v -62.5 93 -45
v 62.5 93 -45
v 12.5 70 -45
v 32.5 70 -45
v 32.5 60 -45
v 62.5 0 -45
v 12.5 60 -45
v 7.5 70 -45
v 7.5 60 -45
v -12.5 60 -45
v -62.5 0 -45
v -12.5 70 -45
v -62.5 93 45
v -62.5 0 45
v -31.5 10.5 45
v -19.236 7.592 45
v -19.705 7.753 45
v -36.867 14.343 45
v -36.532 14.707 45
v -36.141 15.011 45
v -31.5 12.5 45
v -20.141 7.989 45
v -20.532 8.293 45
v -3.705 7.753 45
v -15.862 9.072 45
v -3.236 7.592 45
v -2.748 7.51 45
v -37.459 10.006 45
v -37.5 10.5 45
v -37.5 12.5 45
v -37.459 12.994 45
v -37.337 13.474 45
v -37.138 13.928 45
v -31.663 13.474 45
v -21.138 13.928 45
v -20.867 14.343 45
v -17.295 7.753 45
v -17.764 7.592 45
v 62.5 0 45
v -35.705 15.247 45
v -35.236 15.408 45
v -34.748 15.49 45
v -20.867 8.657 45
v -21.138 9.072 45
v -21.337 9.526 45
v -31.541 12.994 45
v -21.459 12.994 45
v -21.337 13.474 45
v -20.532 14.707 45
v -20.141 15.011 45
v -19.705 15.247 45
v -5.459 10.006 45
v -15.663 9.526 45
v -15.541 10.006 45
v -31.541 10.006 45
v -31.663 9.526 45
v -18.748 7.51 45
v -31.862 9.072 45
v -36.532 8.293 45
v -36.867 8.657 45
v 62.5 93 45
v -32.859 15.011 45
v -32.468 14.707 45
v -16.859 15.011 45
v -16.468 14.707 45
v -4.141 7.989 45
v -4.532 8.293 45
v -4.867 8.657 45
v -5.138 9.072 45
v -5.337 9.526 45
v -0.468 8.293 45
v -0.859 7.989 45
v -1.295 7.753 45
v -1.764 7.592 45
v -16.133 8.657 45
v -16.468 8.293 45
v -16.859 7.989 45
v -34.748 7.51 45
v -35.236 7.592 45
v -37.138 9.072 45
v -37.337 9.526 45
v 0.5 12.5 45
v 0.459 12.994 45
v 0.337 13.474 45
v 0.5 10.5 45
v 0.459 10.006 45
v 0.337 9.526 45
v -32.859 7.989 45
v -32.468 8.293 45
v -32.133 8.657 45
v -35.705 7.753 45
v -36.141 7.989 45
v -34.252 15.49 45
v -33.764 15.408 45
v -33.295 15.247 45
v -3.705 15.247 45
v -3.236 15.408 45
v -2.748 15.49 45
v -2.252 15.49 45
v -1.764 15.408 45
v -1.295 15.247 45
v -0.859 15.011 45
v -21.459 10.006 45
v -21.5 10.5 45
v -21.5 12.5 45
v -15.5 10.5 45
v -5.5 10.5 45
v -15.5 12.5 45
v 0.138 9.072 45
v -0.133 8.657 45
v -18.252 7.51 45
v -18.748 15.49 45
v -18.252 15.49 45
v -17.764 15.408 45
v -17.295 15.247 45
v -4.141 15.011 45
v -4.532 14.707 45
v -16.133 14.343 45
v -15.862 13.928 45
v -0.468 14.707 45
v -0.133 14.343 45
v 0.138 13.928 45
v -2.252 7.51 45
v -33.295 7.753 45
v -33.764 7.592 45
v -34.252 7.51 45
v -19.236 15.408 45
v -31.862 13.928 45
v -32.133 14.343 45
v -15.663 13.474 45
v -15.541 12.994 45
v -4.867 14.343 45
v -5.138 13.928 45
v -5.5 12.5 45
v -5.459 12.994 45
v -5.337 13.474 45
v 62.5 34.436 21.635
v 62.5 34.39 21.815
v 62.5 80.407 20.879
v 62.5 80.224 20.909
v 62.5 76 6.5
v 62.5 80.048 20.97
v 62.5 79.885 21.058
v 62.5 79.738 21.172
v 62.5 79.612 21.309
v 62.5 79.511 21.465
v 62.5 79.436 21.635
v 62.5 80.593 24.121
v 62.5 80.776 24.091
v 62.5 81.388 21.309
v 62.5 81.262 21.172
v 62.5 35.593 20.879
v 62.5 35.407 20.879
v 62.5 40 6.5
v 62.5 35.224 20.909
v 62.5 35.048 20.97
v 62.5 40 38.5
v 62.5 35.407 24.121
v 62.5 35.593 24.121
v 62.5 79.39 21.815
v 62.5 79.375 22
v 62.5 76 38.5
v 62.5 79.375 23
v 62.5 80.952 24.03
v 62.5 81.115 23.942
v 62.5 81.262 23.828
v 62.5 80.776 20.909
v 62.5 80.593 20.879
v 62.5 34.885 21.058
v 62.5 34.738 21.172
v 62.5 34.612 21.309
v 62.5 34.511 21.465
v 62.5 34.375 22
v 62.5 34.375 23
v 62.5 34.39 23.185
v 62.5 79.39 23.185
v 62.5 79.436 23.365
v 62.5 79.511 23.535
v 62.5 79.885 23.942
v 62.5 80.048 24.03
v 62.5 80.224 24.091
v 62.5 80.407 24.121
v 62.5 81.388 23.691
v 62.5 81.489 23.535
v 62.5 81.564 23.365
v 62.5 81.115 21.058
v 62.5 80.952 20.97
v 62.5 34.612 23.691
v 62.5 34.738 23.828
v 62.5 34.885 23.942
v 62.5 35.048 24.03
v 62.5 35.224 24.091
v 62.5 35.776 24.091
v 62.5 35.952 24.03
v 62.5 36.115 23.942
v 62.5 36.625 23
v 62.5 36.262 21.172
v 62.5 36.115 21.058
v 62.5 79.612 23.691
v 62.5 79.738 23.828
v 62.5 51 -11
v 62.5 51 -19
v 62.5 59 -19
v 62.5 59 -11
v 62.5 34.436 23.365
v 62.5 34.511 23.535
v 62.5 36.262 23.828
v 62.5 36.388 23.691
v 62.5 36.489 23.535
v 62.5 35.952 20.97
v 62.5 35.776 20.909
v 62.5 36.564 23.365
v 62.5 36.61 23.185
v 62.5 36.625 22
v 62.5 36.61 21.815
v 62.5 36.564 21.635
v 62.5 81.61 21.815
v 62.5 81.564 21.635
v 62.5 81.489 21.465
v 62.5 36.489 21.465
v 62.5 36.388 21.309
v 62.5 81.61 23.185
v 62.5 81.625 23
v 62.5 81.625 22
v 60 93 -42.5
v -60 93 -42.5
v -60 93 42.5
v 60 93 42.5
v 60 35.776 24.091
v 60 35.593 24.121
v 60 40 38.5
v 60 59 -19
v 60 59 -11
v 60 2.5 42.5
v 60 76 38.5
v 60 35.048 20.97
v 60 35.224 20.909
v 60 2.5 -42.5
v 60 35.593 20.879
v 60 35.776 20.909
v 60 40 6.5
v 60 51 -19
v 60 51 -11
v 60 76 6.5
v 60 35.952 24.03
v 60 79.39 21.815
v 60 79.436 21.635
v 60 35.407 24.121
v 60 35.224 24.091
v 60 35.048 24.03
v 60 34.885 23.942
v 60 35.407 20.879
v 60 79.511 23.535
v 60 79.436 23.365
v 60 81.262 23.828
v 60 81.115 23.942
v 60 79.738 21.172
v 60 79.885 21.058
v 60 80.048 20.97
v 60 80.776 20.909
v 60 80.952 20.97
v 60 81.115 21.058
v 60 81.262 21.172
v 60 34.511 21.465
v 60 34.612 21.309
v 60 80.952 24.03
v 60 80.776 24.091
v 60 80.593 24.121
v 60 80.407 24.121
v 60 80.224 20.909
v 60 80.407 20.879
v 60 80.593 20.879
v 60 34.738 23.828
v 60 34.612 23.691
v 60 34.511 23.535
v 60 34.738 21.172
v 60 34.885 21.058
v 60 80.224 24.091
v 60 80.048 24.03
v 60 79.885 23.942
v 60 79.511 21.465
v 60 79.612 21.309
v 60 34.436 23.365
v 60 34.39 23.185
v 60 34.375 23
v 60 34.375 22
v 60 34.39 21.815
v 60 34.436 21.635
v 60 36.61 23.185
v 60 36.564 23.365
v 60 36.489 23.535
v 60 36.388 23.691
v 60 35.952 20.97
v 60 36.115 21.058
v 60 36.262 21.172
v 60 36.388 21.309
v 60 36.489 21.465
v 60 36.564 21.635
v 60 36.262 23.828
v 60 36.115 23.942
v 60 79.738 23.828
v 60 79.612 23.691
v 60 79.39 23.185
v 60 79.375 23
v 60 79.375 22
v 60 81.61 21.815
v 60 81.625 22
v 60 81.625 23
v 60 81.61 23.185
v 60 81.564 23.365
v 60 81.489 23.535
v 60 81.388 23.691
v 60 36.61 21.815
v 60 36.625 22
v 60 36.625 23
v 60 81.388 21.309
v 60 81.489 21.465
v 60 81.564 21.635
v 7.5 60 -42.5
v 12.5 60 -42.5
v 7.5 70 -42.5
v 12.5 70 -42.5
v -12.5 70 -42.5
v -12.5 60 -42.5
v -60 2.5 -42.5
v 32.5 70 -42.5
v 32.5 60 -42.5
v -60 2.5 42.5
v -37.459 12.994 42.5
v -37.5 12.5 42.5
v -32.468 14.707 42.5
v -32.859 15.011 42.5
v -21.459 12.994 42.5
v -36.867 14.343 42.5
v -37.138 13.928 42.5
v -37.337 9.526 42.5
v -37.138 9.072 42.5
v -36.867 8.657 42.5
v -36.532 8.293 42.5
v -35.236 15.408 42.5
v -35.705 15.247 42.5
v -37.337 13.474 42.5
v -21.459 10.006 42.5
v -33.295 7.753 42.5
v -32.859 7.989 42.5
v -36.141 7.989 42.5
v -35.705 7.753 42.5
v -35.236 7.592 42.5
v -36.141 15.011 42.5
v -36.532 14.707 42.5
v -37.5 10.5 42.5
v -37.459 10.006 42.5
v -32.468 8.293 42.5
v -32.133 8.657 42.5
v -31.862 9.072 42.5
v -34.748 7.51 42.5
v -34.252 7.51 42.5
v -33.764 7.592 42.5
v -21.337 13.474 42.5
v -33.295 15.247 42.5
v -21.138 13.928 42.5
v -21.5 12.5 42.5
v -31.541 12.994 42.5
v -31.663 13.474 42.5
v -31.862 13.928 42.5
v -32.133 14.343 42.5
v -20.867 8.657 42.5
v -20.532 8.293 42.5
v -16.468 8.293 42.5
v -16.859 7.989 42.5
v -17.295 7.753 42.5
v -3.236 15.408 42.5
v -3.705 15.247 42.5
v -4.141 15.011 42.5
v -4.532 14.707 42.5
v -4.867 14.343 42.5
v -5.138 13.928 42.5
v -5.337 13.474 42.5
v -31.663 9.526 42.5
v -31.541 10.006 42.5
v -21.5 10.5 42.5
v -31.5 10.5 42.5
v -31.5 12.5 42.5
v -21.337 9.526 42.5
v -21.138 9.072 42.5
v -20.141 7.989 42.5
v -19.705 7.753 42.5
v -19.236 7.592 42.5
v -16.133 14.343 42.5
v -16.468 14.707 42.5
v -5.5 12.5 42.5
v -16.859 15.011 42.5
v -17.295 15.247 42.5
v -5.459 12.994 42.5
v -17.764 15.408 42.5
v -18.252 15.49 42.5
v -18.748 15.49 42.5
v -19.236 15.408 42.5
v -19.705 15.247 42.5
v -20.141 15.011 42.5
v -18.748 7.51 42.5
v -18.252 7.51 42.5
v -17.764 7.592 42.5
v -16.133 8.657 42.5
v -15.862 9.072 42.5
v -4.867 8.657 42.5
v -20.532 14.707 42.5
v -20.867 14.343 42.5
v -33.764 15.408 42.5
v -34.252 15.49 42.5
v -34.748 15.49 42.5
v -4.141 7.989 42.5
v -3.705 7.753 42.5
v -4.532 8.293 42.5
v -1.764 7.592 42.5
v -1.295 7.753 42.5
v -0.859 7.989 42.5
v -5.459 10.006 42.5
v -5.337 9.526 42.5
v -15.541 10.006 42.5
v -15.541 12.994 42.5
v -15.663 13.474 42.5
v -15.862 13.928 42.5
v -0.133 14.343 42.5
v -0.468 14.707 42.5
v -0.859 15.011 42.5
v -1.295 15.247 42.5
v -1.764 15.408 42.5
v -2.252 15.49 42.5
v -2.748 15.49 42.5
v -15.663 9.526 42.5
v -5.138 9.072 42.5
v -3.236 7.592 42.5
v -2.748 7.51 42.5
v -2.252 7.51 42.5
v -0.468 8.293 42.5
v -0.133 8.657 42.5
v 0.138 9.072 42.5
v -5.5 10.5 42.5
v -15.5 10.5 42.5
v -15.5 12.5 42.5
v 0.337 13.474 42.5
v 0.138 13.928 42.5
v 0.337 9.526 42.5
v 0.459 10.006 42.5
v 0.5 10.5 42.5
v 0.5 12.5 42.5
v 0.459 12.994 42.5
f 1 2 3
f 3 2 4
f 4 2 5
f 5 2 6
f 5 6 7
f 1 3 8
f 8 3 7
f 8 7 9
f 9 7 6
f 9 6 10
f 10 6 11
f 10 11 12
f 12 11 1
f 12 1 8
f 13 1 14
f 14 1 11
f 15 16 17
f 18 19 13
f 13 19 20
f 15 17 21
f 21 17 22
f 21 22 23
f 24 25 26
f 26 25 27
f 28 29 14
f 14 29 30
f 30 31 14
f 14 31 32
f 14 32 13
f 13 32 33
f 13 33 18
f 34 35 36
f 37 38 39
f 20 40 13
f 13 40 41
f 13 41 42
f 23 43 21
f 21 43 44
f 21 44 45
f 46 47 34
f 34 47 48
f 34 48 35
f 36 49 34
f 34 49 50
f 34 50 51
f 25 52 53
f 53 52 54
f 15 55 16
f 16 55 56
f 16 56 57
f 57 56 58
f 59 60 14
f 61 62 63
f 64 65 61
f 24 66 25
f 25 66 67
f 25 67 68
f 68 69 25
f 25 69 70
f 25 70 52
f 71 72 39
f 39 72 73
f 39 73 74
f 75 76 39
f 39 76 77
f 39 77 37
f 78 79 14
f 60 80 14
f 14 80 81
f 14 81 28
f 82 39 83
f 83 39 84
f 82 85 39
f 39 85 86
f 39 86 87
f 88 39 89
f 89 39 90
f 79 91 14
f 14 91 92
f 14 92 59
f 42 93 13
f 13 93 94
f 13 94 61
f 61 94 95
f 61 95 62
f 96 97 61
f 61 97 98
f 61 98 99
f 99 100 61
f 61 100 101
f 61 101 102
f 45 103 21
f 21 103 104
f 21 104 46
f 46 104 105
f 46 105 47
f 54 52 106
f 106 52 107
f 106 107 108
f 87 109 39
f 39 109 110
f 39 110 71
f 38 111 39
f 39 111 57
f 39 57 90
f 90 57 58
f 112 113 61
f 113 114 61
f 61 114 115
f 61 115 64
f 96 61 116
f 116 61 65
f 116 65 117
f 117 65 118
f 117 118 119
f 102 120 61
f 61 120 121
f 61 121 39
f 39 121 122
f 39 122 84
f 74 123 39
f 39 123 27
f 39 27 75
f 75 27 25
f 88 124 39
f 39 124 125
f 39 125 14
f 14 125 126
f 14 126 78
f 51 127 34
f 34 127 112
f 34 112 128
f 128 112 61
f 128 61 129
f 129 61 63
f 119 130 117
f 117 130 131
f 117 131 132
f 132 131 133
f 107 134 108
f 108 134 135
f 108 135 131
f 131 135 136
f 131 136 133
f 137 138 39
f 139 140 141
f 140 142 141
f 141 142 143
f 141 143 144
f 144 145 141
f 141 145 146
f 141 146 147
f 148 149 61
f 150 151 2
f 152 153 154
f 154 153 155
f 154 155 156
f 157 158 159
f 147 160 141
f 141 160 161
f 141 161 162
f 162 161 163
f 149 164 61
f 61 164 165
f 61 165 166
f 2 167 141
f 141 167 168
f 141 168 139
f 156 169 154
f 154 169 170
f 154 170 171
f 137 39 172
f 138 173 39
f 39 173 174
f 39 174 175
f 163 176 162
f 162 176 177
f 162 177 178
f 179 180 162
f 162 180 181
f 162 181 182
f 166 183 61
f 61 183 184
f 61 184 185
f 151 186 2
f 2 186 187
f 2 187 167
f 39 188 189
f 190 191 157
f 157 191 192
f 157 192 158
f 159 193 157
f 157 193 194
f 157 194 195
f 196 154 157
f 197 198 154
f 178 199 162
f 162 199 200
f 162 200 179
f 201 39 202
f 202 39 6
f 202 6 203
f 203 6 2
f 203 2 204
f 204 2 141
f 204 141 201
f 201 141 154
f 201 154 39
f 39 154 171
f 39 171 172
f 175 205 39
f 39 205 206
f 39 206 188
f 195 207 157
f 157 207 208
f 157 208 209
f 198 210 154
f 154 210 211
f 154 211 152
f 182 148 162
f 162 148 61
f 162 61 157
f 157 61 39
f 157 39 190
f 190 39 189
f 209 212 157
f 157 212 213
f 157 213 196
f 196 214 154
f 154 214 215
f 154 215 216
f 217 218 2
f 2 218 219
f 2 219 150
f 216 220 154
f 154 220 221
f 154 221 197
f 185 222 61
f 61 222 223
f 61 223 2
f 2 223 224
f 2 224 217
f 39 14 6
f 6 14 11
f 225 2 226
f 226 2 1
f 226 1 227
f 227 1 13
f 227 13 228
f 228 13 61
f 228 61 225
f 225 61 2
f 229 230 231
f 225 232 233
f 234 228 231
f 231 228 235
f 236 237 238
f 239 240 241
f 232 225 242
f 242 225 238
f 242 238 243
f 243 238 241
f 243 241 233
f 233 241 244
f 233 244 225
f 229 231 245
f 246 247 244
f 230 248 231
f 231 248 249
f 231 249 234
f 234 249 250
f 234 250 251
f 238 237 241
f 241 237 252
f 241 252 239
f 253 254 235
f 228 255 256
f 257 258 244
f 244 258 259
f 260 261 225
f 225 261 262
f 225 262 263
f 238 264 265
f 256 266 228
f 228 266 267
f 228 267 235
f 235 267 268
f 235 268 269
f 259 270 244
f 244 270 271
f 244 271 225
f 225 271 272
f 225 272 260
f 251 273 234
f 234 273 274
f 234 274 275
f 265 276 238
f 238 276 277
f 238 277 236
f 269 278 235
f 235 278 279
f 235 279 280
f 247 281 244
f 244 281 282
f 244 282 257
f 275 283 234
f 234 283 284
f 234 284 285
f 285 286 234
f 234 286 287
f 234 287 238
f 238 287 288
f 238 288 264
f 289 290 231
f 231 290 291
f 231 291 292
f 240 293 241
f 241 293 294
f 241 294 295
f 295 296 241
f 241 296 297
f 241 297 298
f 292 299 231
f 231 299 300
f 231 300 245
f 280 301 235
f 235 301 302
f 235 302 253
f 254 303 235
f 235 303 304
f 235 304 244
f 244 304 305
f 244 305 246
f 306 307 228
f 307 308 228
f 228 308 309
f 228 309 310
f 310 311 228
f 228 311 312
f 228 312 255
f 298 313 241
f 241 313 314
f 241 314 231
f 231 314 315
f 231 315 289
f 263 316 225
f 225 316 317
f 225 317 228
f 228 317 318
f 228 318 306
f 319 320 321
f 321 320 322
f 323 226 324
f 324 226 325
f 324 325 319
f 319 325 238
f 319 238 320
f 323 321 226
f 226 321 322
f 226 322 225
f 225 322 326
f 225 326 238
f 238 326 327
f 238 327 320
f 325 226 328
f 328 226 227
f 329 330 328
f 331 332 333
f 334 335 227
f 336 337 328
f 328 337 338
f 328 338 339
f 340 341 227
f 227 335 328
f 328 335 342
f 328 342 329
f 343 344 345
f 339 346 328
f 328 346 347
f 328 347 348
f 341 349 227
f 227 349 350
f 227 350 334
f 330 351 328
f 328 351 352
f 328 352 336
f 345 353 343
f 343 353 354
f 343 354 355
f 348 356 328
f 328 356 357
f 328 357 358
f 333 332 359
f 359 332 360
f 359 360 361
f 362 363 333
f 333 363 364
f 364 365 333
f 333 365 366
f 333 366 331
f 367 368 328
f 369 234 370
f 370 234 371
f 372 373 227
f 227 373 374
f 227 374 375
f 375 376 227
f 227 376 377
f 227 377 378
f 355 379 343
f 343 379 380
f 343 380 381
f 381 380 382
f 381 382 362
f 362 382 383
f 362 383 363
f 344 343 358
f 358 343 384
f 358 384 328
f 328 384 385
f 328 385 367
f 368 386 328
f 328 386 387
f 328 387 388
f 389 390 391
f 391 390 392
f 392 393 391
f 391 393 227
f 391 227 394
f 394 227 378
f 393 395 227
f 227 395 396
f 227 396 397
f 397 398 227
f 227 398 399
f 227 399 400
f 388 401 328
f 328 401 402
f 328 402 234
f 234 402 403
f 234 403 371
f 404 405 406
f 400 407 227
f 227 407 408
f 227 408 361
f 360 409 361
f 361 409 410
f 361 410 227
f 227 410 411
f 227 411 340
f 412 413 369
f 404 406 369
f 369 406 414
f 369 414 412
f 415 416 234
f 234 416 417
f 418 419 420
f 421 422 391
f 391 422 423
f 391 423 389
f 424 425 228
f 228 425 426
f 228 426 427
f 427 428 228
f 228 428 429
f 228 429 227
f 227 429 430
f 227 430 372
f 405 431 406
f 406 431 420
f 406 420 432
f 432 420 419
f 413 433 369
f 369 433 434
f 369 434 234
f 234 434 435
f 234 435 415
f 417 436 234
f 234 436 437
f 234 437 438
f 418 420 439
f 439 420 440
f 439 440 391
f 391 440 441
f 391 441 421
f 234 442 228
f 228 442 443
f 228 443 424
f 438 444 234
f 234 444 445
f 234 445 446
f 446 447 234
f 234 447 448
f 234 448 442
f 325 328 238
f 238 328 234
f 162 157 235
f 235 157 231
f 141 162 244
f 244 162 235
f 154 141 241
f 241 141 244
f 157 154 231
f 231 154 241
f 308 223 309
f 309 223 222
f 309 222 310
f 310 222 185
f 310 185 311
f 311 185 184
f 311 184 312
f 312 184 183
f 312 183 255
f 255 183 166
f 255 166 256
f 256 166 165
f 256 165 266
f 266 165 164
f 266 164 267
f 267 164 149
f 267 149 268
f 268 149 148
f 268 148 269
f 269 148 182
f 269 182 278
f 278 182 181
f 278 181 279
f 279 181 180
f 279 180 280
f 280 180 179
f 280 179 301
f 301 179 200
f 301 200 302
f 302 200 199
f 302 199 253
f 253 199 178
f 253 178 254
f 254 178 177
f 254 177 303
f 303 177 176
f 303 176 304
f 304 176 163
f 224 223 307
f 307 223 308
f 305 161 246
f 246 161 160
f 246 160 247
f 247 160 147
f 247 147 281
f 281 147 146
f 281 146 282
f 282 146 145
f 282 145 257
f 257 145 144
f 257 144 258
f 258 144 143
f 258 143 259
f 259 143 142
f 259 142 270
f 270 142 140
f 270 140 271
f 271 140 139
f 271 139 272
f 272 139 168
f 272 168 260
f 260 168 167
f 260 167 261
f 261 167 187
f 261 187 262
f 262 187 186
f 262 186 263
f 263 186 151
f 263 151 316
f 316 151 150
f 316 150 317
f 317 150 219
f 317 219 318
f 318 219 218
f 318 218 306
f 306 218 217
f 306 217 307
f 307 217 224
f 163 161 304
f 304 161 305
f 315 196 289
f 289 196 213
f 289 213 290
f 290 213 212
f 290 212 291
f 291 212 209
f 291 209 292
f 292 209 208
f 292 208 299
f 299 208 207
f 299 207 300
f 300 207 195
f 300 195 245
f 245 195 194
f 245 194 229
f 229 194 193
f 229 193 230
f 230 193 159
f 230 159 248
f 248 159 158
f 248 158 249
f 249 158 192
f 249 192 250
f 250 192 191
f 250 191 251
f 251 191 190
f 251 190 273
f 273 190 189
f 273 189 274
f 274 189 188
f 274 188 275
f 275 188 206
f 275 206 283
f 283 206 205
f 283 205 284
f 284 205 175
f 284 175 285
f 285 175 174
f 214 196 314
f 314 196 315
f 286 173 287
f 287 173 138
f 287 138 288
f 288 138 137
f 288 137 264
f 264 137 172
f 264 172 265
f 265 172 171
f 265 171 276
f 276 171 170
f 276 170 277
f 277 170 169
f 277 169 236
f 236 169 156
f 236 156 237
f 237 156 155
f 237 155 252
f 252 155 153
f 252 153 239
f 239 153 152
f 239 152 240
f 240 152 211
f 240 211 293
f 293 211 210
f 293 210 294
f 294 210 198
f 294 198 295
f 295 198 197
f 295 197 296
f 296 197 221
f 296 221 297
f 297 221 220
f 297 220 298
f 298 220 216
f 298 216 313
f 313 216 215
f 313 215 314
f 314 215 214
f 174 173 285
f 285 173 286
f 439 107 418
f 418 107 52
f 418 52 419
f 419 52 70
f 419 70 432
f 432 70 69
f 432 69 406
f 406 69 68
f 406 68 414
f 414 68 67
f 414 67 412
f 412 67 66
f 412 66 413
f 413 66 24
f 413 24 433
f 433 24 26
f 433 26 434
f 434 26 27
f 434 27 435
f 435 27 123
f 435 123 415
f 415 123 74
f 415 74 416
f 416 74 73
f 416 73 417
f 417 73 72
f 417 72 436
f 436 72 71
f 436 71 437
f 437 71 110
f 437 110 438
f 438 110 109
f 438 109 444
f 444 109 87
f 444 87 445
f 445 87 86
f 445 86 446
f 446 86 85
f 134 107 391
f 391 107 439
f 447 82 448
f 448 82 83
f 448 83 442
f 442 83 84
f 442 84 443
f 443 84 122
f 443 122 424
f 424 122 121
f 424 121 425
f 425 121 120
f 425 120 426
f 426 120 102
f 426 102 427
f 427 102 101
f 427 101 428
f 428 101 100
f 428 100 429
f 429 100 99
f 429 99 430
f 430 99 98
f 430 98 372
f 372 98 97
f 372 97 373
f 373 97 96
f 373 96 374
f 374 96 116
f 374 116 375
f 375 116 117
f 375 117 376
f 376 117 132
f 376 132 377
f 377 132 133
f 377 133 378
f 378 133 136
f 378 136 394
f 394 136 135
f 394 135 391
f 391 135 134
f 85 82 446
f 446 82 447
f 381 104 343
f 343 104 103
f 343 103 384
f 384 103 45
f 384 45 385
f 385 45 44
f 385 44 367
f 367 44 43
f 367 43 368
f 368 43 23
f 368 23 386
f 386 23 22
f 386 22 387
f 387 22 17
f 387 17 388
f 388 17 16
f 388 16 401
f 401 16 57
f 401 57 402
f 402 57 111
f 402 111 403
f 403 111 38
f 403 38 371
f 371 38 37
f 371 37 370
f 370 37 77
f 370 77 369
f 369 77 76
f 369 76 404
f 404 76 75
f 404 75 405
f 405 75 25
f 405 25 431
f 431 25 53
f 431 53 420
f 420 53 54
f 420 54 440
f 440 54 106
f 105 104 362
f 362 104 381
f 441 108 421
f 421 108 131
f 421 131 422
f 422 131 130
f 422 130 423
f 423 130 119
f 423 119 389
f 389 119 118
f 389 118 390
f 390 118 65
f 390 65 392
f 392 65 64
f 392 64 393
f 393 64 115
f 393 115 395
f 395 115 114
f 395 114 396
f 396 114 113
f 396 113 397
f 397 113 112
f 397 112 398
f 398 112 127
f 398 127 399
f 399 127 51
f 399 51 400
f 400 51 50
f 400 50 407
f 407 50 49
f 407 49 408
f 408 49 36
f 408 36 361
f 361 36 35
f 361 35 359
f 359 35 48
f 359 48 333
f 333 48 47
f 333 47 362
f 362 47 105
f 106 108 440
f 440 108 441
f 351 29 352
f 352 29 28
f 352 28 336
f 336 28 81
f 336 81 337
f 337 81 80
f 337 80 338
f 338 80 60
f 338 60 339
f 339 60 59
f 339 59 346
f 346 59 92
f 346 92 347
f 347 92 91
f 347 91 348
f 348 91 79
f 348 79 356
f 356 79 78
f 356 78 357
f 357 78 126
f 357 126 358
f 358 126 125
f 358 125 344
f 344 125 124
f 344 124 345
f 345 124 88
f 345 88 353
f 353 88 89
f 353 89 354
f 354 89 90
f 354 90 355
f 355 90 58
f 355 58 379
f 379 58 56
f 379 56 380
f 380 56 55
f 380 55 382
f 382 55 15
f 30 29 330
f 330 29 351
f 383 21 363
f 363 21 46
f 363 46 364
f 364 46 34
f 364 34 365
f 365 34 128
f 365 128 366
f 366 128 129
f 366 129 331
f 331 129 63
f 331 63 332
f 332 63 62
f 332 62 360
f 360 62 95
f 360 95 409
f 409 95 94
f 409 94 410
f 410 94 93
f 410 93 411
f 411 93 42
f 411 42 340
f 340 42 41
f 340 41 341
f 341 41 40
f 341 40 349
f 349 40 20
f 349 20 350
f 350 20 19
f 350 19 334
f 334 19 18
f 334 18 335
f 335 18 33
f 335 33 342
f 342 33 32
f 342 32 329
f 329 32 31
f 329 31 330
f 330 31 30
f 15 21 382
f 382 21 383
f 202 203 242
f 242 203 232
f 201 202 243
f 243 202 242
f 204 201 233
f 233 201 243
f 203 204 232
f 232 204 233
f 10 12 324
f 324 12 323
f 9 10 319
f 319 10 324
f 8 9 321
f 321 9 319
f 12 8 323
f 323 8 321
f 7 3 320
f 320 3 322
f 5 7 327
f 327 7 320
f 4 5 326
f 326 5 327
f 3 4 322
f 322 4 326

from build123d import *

# Parameters (mm, degrees)
SKETCH1_W           = 125
SKETCH1_H           = 90
BOSS_EXTRUDE1_DEPTH = 2.5
SKETCH1_3_W         = 125
SKETCH1_3_H         = 90
SKETCH1_3_W_2       = 120
SKETCH1_3_H_2       = 85
BOSS_EXTRUDE2_DEPTH = 93
SKETCH2_W           = 32
SKETCH2_H           = 36
CUT_EXTRUDE1_DEPTH  = 5
CUT_EXTRUDE2_DEPTH  = 10
SKETCH6_W           = 8
SKETCH6_H           = 8
CUT_EXTRUDE3_DEPTH  = 10
SKETCH7_W           = 20
SKETCH7_H           = 10
CUT_EXTRUDE4_DEPTH  = 10


with BuildPart() as part:
    # Sketch1 → Boss-Extrude1 (new body)
    with BuildSketch(Plane(origin=(0, 0, 0), x_dir=(1, 0, 0), z_dir=(0, 1, 0))):
        Rectangle(SKETCH1_W, SKETCH1_H)
    extrude(amount=BOSS_EXTRUDE1_DEPTH)

    # Sketch1<3> → Boss-Extrude2 (add)
    with BuildSketch(Plane(origin=(0, 0, 0), x_dir=(1, 0, 0), z_dir=(0, 1, 0))):
        Rectangle(SKETCH1_3_W, SKETCH1_3_H)
        Rectangle(SKETCH1_3_W_2, SKETCH1_3_H_2, mode=Mode.SUBTRACT)
    extrude(amount=BOSS_EXTRUDE2_DEPTH)

    # Sketch2 → Cut-Extrude1 (cut)
    with BuildSketch(Plane(origin=(62.5, 0, 0), x_dir=(0, 0, -1), z_dir=(1, 0, 0))):
        with Locations((-22.5, 58)):
            Rectangle(SKETCH2_W, SKETCH2_H)
        with BuildLine():
            Line((-23, 81.625), (-22, 81.625))
            ThreePointArc((-22, 81.625), (-20.875, 80.5), (-22, 79.375))
            Line((-22, 79.375), (-23, 79.375))
            ThreePointArc((-23, 79.375), (-24.125, 80.5), (-23, 81.625))
        make_face()
        with BuildLine():
            Line((-23, 34.375), (-22, 34.375))
            ThreePointArc((-22, 34.375), (-20.875, 35.5), (-22, 36.625))
            Line((-22, 36.625), (-23, 36.625))
            ThreePointArc((-23, 36.625), (-24.125, 35.5), (-23, 34.375))
        make_face()
    extrude(amount=-CUT_EXTRUDE1_DEPTH, mode=Mode.SUBTRACT)

    # Sketch5 → Cut-Extrude2 (cut)
    with BuildSketch(Plane.XY.offset(45)):
        with BuildLine():
            Line((-37.5, 10.5), (-37.5, 12.5))
            ThreePointArc((-37.5, 12.5), (-34.5, 15.5), (-31.5, 12.5))
            Line((-31.5, 12.5), (-31.5, 10.5))
            ThreePointArc((-31.5, 10.5), (-34.5, 7.5), (-37.5, 10.5))
        make_face()
        with BuildLine():
            Line((-21.5, 10.5), (-21.5, 12.5))
            ThreePointArc((-21.5, 12.5), (-18.5, 15.5), (-15.5, 12.5))
            Line((-15.5, 12.5), (-15.5, 10.5))
            ThreePointArc((-15.5, 10.5), (-18.5, 7.5), (-21.5, 10.5))
        make_face()
        with BuildLine():
            Line((-5.5, 10.5), (-5.5, 12.5))
            ThreePointArc((-5.5, 12.5), (-2.5, 15.5), (0.5, 12.5))
            Line((0.5, 12.5), (0.5, 10.5))
            ThreePointArc((0.5, 10.5), (-2.5, 7.5), (-5.5, 10.5))
        make_face()
    extrude(amount=-CUT_EXTRUDE2_DEPTH, mode=Mode.SUBTRACT)

    # Sketch6 → Cut-Extrude3 (cut)
    with BuildSketch(Plane(origin=(62.5, 0, 0), x_dir=(0, 0, -1), z_dir=(1, 0, 0))):
        with Locations((15, 55)):
            Rectangle(SKETCH6_W, SKETCH6_H)
    extrude(amount=-CUT_EXTRUDE3_DEPTH, mode=Mode.SUBTRACT)

    # Sketch7 → Cut-Extrude4 (cut)
    with BuildSketch(Plane(origin=(0, 0, -45), x_dir=(-1, 0, 0), z_dir=(0, 0, -1))):
        with Locations((-22.5, 65)):
            Rectangle(SKETCH7_W, SKETCH7_H)
        with Locations((2.5, 65)):
            Rectangle(SKETCH7_W, SKETCH7_H)
    extrude(amount=-CUT_EXTRUDE4_DEPTH, mode=Mode.SUBTRACT)


solid = part.part
